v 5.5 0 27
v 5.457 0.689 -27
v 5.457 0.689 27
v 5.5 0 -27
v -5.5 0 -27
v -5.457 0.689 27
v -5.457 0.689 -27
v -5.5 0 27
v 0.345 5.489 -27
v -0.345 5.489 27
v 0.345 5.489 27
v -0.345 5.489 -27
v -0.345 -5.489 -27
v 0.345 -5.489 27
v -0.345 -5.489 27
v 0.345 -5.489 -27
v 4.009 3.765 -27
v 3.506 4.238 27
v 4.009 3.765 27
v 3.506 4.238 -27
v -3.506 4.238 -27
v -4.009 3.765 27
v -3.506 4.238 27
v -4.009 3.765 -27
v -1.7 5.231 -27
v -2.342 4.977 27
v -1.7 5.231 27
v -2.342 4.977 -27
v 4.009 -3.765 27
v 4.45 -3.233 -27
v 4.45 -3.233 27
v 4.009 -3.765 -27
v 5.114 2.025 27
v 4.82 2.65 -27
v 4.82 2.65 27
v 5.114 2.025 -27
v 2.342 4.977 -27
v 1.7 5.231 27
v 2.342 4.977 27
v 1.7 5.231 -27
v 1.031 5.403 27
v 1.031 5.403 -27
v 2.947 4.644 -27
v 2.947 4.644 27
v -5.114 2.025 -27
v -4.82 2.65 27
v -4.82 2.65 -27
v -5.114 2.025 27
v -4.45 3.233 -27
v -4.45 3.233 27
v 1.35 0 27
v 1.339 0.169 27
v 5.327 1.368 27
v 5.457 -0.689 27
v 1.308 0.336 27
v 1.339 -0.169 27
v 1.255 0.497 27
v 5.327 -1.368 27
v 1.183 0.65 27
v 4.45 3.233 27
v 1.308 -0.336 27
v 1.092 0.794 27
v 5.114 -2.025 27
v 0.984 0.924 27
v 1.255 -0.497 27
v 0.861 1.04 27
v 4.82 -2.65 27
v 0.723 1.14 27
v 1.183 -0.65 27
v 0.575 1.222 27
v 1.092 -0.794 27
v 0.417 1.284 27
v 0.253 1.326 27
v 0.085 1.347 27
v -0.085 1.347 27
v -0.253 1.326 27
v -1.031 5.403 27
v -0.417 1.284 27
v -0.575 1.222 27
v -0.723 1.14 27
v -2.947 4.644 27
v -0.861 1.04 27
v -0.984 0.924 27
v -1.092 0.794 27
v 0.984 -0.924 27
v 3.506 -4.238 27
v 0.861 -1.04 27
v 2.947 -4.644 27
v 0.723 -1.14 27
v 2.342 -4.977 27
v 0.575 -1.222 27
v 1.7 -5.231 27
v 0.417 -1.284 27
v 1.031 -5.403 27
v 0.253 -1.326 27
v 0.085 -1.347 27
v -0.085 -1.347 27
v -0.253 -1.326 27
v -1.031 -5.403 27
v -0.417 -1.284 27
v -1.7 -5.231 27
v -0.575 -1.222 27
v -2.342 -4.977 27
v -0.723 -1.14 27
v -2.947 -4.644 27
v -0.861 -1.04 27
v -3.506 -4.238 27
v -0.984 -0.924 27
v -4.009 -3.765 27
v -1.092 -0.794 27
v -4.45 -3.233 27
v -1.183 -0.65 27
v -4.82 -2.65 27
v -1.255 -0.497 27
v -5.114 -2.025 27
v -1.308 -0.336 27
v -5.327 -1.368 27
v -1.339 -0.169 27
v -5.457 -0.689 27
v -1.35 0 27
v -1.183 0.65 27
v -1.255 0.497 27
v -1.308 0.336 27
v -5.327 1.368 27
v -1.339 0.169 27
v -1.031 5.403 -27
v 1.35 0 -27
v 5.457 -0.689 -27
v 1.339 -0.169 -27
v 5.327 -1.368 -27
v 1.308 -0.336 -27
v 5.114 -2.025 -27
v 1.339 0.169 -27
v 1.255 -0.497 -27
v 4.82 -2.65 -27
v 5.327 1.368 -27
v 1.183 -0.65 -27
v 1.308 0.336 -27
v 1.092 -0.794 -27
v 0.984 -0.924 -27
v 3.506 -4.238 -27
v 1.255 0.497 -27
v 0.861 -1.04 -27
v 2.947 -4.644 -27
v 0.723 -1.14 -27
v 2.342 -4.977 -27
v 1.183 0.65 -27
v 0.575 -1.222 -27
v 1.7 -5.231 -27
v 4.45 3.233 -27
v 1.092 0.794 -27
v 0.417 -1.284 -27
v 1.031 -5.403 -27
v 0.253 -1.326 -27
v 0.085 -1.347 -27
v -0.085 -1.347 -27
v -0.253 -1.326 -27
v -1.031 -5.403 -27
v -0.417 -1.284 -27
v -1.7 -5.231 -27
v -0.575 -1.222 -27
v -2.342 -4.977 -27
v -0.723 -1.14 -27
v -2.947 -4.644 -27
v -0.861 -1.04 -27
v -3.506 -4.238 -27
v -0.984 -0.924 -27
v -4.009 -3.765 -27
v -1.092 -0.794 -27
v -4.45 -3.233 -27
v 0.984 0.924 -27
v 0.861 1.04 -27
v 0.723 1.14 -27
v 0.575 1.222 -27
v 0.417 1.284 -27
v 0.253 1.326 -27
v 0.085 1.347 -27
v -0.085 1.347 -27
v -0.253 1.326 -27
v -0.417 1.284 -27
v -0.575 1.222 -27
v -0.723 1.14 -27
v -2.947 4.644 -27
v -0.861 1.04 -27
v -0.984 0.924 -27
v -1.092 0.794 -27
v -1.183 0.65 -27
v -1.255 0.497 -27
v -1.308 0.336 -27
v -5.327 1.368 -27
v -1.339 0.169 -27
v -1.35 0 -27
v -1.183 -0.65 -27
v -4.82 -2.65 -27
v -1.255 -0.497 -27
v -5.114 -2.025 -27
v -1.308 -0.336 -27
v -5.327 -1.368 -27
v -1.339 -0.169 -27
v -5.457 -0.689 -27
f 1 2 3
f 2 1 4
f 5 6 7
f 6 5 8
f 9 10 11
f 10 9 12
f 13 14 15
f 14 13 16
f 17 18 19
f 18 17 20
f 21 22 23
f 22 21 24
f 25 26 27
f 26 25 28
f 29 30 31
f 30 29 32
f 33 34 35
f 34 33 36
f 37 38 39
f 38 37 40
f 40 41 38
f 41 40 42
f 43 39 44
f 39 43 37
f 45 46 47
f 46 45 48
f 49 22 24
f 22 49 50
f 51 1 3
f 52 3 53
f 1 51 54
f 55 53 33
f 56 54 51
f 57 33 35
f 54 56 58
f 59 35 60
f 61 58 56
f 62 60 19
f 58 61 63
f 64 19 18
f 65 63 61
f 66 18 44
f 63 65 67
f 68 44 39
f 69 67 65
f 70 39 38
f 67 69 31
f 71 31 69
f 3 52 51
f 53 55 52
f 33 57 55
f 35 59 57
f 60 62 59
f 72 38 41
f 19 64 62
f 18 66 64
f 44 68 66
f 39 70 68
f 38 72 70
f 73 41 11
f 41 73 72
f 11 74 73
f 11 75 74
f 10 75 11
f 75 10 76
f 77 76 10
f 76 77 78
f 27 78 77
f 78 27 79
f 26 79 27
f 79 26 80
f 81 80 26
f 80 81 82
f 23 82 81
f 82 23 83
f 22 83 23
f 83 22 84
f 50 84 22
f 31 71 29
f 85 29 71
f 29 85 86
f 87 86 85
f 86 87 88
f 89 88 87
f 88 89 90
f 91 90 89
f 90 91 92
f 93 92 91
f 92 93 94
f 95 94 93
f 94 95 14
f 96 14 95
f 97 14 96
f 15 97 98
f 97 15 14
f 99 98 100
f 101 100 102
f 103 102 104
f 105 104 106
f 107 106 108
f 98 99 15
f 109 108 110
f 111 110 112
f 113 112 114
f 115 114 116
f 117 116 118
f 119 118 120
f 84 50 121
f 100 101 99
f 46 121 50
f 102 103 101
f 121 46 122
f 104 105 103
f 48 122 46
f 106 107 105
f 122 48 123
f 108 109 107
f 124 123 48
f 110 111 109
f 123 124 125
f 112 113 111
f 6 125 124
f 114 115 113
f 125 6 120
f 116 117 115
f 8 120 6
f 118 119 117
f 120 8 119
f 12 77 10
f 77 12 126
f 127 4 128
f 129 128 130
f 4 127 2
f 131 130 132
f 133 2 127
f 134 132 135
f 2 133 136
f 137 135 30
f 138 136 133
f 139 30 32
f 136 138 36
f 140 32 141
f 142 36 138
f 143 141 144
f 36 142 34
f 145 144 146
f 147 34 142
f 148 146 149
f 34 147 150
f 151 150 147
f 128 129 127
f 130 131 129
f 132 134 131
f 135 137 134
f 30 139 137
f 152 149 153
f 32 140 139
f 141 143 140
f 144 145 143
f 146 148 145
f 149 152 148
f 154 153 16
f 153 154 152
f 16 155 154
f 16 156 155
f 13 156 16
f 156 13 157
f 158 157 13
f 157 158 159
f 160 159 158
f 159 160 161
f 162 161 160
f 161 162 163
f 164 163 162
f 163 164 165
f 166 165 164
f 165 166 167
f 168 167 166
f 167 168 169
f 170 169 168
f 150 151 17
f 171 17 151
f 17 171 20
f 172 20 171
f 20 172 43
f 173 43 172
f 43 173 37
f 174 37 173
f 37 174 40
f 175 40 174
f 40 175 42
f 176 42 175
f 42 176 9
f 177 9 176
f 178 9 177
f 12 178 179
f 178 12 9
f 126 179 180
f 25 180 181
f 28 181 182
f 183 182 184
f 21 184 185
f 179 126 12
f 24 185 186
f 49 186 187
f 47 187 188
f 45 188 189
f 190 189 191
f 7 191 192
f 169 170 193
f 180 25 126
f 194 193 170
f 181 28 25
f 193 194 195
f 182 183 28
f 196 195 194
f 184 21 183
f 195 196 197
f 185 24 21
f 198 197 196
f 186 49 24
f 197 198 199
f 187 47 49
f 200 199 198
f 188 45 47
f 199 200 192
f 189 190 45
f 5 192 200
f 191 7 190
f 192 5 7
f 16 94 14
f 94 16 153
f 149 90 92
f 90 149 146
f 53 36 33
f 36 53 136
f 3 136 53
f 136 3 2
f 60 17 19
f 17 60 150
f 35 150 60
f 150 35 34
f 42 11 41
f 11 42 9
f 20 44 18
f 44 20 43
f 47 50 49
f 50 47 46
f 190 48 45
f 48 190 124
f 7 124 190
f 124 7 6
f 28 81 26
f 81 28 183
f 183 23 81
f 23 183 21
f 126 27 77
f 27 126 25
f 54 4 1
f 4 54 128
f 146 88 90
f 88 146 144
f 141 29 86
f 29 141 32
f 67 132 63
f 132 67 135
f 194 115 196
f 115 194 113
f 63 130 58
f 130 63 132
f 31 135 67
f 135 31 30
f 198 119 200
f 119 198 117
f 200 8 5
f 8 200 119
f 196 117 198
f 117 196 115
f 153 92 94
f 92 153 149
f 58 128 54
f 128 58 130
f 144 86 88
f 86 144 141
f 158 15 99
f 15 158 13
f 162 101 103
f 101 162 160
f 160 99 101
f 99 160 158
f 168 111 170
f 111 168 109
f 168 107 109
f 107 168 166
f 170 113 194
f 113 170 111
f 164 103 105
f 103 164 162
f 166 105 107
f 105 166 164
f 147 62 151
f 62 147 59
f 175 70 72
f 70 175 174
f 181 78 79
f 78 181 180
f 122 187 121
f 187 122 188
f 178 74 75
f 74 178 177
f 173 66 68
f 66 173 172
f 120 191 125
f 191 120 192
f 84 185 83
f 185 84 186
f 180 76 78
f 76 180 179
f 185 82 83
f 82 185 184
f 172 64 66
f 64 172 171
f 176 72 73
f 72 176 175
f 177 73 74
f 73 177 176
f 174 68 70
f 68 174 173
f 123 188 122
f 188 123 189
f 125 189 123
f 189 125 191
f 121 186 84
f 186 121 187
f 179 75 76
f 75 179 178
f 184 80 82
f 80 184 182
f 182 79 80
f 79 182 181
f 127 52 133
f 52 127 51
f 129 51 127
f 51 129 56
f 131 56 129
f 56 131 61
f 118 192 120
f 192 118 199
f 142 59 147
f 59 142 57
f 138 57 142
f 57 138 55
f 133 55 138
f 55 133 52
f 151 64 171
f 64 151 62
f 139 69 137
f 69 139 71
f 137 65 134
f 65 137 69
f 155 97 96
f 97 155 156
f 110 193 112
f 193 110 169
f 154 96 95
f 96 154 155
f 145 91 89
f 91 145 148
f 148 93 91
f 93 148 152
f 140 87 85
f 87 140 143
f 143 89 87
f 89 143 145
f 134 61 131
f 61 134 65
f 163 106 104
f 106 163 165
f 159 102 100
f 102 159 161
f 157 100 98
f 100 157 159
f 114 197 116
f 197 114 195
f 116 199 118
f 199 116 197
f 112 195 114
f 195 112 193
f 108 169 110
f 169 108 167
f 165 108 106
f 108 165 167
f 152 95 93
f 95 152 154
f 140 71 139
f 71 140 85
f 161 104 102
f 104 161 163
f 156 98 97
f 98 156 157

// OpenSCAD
$fn = 50;


difference() {
	union() {
		translate(v = [0, 0, -27.0000000000]) {
			cylinder(h = 54, r = 5.5000000000);
		}
	}
	union() {
		translate(v = [0, 0, -100.0000000000]) {
			cylinder(h = 200, r = 1.3500000000);
		}
	}
}
